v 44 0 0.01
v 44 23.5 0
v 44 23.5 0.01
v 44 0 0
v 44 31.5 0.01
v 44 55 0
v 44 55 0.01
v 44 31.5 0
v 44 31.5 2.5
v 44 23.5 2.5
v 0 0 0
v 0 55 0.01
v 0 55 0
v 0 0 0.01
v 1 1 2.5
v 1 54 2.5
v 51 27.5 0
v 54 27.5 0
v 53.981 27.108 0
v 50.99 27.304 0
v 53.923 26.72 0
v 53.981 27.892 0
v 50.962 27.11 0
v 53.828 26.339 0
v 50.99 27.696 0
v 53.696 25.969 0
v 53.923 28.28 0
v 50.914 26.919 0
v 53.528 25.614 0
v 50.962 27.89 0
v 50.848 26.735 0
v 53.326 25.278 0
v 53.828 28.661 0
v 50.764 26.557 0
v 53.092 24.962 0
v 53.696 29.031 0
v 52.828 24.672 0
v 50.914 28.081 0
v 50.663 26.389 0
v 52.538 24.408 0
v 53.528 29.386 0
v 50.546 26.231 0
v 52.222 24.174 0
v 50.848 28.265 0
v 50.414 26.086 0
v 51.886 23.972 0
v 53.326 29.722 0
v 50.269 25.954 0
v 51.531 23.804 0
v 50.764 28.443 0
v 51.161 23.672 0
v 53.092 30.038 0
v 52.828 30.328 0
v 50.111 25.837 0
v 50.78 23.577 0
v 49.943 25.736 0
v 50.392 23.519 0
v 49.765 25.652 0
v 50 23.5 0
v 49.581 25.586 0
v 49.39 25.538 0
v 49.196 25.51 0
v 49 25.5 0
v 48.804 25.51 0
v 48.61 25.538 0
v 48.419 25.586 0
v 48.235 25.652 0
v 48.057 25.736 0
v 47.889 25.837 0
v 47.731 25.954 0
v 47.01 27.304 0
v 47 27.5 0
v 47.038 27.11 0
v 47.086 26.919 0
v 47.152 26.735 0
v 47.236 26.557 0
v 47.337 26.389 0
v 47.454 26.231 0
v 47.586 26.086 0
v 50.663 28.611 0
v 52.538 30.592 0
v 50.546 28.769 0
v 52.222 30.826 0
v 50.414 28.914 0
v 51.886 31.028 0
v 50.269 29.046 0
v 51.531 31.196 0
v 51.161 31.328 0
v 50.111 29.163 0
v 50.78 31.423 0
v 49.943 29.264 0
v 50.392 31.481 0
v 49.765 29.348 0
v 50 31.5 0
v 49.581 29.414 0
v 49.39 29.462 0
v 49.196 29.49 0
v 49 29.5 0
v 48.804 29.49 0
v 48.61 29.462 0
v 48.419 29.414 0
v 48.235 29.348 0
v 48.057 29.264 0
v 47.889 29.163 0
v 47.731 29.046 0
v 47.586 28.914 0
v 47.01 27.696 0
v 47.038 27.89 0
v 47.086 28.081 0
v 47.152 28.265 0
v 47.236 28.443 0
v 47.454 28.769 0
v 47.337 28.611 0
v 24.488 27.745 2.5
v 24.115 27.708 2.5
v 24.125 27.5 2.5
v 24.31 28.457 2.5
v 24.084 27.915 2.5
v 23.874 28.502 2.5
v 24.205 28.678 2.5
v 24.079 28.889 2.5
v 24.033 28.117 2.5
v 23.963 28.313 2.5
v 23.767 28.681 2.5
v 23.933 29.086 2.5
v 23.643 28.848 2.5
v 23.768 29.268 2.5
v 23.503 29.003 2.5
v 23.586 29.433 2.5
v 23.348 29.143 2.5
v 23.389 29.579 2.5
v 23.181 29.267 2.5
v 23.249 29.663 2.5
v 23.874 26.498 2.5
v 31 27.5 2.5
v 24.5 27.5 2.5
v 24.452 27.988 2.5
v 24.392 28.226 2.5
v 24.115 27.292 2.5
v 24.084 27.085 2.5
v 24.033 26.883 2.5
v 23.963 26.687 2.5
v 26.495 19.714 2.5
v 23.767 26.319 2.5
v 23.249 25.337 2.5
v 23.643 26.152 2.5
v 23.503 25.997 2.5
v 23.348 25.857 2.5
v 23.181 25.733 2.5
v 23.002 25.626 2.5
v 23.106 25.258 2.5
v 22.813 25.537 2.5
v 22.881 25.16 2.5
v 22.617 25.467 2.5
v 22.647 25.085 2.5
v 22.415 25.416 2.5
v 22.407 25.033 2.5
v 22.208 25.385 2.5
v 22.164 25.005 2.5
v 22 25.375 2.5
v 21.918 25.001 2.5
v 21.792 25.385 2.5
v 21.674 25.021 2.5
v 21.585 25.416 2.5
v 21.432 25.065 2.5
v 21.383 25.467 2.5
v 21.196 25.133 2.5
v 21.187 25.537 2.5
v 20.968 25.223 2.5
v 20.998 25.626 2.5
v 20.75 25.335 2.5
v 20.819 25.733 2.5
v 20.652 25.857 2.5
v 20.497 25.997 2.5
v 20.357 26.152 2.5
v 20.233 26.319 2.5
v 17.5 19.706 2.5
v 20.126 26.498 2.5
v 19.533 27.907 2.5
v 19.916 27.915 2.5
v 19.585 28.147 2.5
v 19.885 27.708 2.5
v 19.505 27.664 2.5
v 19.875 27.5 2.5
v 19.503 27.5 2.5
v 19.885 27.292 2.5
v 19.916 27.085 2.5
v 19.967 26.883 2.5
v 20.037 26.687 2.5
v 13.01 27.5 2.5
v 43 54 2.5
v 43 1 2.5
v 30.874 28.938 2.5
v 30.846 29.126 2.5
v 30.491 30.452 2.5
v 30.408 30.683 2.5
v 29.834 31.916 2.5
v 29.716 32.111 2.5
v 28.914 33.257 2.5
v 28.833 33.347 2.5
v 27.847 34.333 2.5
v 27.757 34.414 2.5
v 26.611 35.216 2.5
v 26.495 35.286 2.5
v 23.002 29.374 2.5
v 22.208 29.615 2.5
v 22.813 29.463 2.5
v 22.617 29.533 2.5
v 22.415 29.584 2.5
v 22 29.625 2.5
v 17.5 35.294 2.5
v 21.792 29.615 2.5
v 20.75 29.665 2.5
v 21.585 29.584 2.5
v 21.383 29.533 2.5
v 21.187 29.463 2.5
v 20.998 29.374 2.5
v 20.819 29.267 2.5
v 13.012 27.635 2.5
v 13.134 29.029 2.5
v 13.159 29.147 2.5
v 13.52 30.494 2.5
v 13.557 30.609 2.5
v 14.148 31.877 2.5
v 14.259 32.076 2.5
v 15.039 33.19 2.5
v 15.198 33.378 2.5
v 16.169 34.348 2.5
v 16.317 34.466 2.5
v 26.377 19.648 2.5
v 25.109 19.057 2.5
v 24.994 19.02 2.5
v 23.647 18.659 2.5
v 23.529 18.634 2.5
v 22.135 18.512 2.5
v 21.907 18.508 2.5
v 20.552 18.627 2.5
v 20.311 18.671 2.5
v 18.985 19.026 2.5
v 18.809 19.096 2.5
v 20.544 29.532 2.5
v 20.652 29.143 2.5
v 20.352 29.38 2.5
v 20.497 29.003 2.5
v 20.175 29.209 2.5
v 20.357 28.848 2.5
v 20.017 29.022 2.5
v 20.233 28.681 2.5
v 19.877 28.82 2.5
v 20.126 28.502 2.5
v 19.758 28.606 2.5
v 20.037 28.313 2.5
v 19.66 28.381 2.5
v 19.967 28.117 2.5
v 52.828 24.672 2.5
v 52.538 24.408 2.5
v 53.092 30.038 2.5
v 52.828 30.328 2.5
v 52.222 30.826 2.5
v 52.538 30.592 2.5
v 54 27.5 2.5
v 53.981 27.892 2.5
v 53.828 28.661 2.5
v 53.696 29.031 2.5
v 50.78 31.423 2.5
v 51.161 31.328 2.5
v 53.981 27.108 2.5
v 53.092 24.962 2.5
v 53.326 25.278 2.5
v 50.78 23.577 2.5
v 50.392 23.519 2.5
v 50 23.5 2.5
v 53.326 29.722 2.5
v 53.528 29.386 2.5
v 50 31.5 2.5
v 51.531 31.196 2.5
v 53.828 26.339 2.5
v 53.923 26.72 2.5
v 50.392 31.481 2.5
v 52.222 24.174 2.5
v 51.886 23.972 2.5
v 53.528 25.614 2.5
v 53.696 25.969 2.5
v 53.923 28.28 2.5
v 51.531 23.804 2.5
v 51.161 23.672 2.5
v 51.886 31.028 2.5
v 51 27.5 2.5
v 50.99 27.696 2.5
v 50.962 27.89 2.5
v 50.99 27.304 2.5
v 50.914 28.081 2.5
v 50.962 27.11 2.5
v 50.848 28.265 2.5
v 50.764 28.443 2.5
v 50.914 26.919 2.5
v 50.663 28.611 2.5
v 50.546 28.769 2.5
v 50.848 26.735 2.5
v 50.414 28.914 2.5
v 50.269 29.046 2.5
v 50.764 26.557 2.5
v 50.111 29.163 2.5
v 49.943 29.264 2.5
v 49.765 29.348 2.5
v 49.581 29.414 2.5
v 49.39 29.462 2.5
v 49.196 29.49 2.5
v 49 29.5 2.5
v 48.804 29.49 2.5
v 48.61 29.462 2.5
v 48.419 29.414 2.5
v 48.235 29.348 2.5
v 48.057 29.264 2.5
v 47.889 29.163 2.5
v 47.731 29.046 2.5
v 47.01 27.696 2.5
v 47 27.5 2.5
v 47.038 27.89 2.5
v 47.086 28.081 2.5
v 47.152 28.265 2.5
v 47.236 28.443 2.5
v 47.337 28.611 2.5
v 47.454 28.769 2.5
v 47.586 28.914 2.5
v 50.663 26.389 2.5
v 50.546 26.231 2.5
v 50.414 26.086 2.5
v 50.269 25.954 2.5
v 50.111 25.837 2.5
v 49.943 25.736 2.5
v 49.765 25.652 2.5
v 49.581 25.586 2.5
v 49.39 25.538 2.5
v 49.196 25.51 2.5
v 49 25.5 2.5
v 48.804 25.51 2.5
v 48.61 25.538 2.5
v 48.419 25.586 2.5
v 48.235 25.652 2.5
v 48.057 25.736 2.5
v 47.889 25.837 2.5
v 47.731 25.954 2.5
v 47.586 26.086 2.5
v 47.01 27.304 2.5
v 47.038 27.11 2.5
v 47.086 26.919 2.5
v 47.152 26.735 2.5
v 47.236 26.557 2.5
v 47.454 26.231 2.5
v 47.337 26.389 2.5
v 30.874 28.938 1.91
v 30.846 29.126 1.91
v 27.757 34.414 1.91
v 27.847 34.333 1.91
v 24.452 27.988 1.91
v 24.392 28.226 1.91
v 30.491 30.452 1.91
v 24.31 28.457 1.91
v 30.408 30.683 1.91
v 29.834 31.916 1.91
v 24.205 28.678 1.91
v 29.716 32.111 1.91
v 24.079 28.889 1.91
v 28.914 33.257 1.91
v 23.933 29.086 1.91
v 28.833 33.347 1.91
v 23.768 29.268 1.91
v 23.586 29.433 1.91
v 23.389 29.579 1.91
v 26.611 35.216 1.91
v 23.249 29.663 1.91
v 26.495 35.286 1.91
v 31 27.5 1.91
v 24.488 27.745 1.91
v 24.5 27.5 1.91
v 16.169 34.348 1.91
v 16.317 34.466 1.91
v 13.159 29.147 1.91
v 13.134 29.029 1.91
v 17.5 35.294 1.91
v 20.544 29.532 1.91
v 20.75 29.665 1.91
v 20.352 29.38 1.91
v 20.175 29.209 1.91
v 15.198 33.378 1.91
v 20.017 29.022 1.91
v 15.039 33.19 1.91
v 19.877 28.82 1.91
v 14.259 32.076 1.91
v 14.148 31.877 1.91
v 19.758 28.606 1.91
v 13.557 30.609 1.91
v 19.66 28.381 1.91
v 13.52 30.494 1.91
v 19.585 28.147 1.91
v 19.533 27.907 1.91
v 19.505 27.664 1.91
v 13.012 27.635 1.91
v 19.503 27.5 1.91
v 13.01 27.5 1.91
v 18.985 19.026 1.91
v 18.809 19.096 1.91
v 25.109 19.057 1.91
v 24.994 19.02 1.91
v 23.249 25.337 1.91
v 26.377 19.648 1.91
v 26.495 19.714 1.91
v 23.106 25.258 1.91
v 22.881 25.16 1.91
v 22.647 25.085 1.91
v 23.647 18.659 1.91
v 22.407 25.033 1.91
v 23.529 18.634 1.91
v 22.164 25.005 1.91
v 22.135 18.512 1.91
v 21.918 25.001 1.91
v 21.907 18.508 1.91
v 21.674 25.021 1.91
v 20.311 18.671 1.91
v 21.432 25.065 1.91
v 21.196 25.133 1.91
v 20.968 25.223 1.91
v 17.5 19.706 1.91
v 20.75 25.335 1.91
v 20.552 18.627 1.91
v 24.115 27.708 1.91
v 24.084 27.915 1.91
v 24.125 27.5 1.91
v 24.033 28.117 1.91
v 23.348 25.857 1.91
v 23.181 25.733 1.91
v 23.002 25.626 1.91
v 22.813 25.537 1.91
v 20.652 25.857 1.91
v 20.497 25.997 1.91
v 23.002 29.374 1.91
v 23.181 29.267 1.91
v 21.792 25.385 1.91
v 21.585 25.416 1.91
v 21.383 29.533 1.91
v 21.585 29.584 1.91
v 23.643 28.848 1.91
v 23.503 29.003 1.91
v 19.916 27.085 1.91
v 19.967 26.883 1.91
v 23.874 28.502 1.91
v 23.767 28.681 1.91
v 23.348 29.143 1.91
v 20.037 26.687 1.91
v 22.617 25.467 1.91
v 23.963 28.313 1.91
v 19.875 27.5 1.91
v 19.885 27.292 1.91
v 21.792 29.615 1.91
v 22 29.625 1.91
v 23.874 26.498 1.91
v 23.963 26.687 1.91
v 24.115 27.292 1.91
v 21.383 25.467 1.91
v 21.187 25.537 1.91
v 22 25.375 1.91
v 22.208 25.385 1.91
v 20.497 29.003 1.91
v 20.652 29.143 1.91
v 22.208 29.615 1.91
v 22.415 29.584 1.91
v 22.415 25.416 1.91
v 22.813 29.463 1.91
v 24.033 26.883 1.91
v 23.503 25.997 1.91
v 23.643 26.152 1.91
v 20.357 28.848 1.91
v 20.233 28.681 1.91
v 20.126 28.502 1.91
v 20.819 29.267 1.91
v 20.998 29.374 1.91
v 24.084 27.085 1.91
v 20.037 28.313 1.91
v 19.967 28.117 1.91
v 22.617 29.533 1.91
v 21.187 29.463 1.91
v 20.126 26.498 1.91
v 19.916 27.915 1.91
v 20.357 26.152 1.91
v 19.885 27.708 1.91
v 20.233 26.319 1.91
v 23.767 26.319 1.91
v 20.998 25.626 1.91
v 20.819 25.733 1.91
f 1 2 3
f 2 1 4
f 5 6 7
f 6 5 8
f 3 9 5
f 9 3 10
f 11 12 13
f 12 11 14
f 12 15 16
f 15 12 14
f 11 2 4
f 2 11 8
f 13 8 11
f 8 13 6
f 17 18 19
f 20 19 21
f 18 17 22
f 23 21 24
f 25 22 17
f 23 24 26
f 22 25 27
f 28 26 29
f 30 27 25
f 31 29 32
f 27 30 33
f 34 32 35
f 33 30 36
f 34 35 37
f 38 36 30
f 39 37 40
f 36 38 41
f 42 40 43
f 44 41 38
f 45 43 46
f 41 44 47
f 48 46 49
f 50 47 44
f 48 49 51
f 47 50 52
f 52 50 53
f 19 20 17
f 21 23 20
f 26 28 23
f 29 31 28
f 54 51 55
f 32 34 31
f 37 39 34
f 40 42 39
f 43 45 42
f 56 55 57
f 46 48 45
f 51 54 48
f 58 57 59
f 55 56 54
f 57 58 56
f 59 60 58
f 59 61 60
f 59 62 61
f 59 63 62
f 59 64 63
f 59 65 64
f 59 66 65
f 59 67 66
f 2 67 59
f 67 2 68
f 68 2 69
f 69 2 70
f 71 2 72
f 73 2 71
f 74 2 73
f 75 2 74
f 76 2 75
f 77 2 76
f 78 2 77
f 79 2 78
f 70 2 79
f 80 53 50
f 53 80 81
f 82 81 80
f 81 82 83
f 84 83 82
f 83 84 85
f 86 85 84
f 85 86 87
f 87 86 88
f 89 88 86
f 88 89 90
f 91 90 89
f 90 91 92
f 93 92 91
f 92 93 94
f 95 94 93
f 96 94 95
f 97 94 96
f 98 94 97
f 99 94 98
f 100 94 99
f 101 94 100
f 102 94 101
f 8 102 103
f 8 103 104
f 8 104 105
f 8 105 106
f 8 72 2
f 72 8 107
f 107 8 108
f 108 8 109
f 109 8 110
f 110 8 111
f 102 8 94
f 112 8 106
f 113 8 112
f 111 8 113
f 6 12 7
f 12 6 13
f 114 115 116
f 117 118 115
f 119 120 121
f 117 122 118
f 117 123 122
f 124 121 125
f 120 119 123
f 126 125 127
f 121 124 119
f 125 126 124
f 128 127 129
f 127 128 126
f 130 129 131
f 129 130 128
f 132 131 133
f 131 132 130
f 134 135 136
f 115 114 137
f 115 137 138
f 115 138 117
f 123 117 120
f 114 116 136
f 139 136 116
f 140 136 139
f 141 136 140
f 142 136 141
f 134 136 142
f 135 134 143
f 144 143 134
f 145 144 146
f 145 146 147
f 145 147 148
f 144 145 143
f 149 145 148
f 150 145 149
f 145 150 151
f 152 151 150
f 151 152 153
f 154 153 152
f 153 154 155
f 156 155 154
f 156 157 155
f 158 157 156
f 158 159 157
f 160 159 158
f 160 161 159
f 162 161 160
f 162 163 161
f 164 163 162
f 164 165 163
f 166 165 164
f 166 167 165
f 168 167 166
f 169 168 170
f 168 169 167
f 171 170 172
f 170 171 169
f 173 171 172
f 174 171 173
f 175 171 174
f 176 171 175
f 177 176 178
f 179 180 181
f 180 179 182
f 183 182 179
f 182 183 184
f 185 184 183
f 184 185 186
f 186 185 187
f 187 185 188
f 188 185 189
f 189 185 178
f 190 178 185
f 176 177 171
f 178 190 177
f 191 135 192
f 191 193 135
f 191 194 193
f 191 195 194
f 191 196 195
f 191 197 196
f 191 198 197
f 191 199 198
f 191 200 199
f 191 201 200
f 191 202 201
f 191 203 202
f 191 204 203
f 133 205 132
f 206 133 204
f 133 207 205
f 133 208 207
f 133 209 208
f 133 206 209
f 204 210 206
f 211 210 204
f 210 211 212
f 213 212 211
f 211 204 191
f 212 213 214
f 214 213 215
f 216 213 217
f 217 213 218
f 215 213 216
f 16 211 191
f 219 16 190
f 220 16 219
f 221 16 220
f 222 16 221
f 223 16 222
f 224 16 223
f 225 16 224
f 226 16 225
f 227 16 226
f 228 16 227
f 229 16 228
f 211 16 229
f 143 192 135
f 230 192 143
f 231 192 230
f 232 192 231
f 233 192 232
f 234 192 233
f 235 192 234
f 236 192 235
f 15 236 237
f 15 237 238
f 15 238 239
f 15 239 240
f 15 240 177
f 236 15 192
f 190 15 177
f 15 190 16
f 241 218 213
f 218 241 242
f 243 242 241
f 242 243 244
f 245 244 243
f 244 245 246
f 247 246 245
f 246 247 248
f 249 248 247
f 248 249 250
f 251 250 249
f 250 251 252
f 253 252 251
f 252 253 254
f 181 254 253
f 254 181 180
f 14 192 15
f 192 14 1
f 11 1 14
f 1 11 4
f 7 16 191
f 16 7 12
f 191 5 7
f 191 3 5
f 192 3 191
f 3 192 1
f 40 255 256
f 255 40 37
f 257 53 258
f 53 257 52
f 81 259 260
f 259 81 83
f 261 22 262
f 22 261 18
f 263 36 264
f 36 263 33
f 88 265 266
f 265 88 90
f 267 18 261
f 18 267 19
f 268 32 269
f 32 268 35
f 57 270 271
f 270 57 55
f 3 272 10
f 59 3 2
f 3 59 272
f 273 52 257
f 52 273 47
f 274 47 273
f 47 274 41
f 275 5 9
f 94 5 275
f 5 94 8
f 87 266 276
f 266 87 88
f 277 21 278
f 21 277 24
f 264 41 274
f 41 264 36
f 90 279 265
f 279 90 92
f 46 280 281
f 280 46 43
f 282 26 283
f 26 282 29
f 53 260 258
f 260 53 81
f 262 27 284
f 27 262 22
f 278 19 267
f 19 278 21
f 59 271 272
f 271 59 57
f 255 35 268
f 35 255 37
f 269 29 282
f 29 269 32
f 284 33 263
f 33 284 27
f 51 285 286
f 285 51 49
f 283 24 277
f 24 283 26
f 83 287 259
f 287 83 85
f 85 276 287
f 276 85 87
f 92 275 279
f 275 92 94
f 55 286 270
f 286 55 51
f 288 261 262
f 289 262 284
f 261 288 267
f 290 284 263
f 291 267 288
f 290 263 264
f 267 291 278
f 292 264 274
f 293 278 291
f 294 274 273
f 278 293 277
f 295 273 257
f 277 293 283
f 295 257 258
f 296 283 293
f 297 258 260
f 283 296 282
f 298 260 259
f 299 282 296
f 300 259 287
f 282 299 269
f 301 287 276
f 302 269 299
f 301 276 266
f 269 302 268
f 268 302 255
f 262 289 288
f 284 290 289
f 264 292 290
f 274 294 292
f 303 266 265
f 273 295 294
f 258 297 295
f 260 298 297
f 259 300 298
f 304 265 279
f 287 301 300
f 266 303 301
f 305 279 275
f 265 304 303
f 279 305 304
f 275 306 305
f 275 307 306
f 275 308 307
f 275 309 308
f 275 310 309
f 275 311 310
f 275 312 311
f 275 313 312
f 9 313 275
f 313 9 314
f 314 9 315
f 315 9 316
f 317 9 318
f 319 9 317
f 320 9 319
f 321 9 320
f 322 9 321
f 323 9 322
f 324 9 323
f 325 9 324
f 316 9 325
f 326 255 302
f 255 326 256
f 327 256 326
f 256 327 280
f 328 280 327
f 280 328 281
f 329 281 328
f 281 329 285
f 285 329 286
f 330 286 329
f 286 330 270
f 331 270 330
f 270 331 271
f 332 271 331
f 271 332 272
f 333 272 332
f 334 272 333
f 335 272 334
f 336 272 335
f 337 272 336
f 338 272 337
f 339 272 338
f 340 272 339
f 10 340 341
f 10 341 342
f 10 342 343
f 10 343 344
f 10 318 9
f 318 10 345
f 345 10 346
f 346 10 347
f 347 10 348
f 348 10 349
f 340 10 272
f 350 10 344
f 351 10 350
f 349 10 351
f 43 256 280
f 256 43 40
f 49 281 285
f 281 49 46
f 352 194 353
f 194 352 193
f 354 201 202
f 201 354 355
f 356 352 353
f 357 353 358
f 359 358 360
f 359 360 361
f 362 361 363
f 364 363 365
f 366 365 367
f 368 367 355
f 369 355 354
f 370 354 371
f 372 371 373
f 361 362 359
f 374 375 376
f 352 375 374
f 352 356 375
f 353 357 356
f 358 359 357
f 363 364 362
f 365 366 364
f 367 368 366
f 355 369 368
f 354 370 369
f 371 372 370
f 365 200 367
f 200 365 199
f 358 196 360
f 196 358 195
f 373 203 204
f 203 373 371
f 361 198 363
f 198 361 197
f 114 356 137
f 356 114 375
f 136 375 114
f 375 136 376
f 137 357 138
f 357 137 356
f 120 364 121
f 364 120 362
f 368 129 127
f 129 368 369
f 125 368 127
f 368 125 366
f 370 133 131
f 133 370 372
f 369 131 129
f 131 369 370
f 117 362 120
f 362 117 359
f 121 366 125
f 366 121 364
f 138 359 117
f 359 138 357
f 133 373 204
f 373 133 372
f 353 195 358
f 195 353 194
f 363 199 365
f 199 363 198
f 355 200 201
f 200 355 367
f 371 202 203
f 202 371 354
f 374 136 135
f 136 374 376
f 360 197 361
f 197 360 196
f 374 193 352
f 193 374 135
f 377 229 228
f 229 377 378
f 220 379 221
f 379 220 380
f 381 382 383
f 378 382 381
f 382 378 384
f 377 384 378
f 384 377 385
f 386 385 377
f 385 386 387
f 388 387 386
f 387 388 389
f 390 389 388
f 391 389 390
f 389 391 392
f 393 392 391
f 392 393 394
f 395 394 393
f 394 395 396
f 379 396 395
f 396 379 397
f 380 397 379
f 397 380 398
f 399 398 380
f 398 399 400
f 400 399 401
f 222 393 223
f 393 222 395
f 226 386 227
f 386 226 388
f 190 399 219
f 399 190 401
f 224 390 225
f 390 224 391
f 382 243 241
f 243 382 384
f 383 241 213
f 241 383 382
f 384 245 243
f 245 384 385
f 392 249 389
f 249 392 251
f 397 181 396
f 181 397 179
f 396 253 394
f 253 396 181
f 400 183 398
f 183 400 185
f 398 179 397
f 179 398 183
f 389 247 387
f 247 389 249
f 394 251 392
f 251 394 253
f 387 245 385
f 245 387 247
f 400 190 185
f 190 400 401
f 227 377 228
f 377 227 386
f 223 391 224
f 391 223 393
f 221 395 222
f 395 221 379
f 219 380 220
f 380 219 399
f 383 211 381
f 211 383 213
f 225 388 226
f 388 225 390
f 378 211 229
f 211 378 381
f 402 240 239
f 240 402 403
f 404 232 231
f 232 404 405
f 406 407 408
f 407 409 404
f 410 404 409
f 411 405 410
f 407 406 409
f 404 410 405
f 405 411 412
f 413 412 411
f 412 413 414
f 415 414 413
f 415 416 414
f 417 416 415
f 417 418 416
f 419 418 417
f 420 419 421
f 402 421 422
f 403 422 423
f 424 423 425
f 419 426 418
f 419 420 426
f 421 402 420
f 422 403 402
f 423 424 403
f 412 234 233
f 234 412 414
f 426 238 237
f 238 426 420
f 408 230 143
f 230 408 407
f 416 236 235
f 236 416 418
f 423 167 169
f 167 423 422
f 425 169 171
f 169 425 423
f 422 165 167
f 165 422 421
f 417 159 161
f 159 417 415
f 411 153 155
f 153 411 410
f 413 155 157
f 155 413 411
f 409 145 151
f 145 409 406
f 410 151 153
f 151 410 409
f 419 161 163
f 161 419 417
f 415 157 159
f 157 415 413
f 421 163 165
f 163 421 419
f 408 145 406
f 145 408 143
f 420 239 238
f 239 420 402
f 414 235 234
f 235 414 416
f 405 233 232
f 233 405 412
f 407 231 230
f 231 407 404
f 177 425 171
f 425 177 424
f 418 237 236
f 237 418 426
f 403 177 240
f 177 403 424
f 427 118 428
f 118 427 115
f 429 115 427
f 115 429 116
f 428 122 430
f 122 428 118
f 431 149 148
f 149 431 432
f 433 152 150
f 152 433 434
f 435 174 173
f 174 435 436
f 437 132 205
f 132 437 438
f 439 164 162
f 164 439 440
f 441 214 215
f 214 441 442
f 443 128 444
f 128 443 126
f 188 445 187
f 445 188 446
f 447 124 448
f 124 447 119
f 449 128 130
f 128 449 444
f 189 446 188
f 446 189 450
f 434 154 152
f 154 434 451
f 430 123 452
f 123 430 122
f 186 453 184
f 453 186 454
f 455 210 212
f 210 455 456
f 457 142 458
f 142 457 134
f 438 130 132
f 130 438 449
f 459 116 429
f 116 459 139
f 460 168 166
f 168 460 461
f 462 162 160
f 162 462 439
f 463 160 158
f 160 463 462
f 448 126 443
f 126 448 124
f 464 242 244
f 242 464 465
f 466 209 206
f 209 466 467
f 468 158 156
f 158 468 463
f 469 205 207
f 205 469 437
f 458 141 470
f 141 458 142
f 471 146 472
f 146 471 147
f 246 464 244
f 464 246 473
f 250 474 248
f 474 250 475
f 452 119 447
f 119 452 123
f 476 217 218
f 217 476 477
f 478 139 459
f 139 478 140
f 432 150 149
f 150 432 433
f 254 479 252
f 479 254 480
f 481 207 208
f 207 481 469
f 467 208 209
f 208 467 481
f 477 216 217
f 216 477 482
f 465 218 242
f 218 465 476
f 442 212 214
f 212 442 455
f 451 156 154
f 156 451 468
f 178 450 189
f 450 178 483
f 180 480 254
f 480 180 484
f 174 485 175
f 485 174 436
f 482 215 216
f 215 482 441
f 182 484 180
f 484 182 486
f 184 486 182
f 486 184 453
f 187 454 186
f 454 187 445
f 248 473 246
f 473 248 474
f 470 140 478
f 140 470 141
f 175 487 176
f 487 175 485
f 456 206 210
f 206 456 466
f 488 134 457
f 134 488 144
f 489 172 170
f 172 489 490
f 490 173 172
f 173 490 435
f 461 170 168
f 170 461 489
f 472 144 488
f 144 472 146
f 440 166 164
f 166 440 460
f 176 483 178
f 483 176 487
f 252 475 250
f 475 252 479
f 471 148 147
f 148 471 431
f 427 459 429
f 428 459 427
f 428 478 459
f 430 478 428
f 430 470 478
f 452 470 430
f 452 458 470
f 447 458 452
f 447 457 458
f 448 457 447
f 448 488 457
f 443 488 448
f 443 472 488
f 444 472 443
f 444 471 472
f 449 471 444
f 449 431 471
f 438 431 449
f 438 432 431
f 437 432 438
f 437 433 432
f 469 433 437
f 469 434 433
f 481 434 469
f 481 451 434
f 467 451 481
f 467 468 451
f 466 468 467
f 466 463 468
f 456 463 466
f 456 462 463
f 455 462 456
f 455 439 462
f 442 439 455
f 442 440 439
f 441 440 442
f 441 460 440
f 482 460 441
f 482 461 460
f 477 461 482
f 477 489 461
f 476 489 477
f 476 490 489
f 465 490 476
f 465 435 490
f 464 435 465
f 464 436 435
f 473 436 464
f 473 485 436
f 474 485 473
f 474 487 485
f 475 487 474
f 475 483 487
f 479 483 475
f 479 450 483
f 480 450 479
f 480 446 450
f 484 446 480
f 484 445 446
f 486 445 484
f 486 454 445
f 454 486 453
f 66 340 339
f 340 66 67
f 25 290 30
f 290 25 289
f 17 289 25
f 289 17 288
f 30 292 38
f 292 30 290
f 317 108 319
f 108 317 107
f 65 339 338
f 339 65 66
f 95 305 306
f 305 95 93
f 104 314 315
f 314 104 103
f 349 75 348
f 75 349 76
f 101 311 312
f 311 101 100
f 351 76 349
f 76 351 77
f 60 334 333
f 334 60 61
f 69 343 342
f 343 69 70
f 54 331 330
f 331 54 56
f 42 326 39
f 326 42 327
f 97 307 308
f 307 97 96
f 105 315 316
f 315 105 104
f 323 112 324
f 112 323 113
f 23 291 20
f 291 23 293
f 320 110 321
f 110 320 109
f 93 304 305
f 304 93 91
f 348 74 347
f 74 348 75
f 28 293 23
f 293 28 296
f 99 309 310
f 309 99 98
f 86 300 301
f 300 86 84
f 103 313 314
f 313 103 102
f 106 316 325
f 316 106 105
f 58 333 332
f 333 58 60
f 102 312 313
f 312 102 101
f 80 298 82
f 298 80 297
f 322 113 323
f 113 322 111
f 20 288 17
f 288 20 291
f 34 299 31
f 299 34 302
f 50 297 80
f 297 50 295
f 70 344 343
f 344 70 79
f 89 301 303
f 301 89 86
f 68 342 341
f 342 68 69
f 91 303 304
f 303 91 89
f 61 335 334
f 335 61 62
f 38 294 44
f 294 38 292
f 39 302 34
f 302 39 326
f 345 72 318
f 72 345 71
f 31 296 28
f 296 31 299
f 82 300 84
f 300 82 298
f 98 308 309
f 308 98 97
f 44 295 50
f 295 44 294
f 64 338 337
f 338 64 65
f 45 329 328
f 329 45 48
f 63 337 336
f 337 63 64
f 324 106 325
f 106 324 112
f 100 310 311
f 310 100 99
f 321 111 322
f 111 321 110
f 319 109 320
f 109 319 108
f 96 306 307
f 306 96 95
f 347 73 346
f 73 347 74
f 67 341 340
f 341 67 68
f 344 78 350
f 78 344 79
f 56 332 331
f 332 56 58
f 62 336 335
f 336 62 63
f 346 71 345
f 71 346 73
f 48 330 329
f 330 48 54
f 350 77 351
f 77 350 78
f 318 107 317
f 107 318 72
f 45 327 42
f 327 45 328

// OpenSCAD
// ============================================================
//  Marie Curie Reaction Time Toy — Door Panel
//  File: portinha.scad
//
//  Description:
//    A single door panel (print TWO copies).
//    Each door fits into one of the front apertures of the
//    main box and is actuated by an SG90 servo motor via a
//    servo horn arm that is integrated into one edge of the door.
//
//    The door has:
//      • A slight edge bevel for a clean, professional look.
//      • A servo horn attachment arm (centred on one edge) with
//        an M3 screw hole for linking to the servo horn.
//      • A small radiation hazard symbol engraved on the face.
//
//  Print Settings:
//    - Layer height : 0.15 mm  (finer detail for engraving)
//    - Infill       : 40 % (solid perimeter, sturdy panel)
//    - Supports     : Not required (print flat)
//    - Material     : PLA / PETG  (contrast colour recommended)
//    - Perimeters   : 3
//    - Orientation  : Print flat (XY plane, Z = thickness)
//
//  Coordinate system:
//    Origin at the bottom-left corner of the door face.
//    X → width (44 mm), Y → height (55 mm), Z → thickness (2.5 mm)
// ============================================================

// ── Global rendering quality ──────────────────────────────
$fn = 64;

// ── Door body dimensions ──────────────────────────────────
door_w     = 44;    // width  [mm]
door_h     = 55;    // height [mm]
door_thick = 2.5;   // thickness [mm]
bevel      = 1.0;   // chamfer/bevel size on perimeter edges [mm]

// ── Servo horn attachment arm ─────────────────────────────
arm_w       = 8;    // arm width  [mm]
arm_len     = 10;   // arm length protruding from door edge [mm]
arm_thick   = door_thick; // same thickness as door for flat print
arm_hole_d  = 4.0;  // M3 clearance hole in the arm [mm] (3.2 mm drill + tolerance)
arm_hole_d_inner = 3.2; // tight fit inner hole diameter [mm]
// Arm centred on the RIGHT edge of the door (hinge side).
// The servo rotates the door about this point.
arm_cx = door_w;          // arm starts at right edge
arm_cy = door_h / 2;     // centred vertically

// ── Engraved radiation symbol ─────────────────────────────
rad_cx    = door_w / 2;    // symbol X centre
rad_cy    = door_h / 2;    // symbol Y centre
rad_R     = 9;             // outer blade radius [mm]
rad_r     = 2.5;           // inner circle radius [mm]
rad_depth = 0.6;           // engraving depth [mm]

// ── Tolerance ─────────────────────────────────────────────
tol = 0.2;
eps = 0.01;

// ============================================================
//  MAIN MODULE CALL
// ============================================================
door();

// ============================================================
//  MODULE: door
//  Full door assembly: bevelled panel + arm + engraving.
// ============================================================
module door() {
    difference() {
        union() {
            // ── 1. Bevelled door panel ────────────────────
            bevelled_panel(door_w, door_h, door_thick, bevel);

            // ── 2. Servo horn attachment arm ──────────────
            servo_arm();
        }

        // ── 3. Engraved radiation symbol on front face ────
        translate([rad_cx, rad_cy, door_thick - rad_depth + eps])
            radiation_symbol_2d(R=rad_R, r=rad_r, depth=rad_depth + eps);

        // ── 4. M3 screw hole through the arm ─────────────
        translate([arm_cx + arm_len / 2, arm_cy, -eps])
            cylinder(d=arm_hole_d, h=arm_thick + 2*eps);
    }
}

// ============================================================
//  MODULE: bevelled_panel
//  A flat rectangular panel with a chamfer on all top edges.
//  w, h → footprint dimensions
//  t    → thickness
//  b    → bevel/chamfer size
// ============================================================
module bevelled_panel(w, h, t, b) {
    hull() {
        // Bottom full footprint
        translate([0, 0, 0])
            cube([w, h, eps]);
        // Top footprint, inset by the bevel
        translate([b, b, t - eps])
            cube([w - 2*b, h - 2*b, eps]);
    }
}

// ============================================================
//  MODULE: servo_arm
//  A rectangular tab protruding from the right (hinge) edge
//  of the door panel.  The M3 hole is subtracted in door().
// ============================================================
module servo_arm() {
    translate([arm_cx, arm_cy - arm_w / 2, 0]) {
        // Simple rectangular arm, same thickness as door
        hull() {
            cube([eps, arm_w, arm_thick]);
            translate([arm_len - arm_w/2, arm_w/2, 0])
                cylinder(d=arm_w, h=arm_thick);
        }
    }
}

// ============================================================
//  MODULE: radiation_symbol_2d
//  3-blade trefoil engraved into the door surface.
//  Centred at origin in XY, extruded downward by `depth`.
//  R     — outer radius of blades
//  r     — inner clear-circle radius
//  depth — engraving extrusion depth
// ============================================================
module radiation_symbol_2d(R=9, r=2.5, depth=0.6) {
    // Centre dot
    cylinder(r=r * 0.85, h=depth);

    // Three blades at 0°, 120°, 240°
    for (angle = [0, 120, 240]) {
        rotate([0, 0, angle])
            blade(R=R, r=r, depth=depth);
    }
}

// ============================================================
//  MODULE: blade
//  A single 60° sector blade of the radiation symbol,
//  centred at 30° from the X axis.
// ============================================================
module blade(R, r, depth) {
    intersection() {
        // Full annular cylinder
        difference() {
            cylinder(r=R, h=depth);
            cylinder(r=r, h=depth + eps);
        }
        // 60° sector mask (blade spans from 0° to 60°)
        linear_extrude(height=depth + eps)
            polygon([
                [0, 0],
                [R * cos(0),  R * sin(0)],
                [R * cos(10), R * sin(10)],
                [R * cos(20), R * sin(20)],
                [R * cos(30), R * sin(30)],
                [R * cos(40), R * sin(40)],
                [R * cos(50), R * sin(50)],
                [R * cos(60), R * sin(60)]
            ]);
    }
}

// ============================================================
//  NOTES FOR ASSEMBLY
// ============================================================
// 1. Print TWO copies of this file (one per door opening).
// 2. The arm on the RIGHT edge hooks onto the SG90 servo horn.
//    The M3 screw (10 mm long) passes through the arm hole and
//    into the servo horn's threaded hole.
// 3. Mirror the second door in your slicer (or flip in OpenSCAD)
//    if you want the arms to be on opposite sides.
//    To mirror: use  mirror([1,0,0]) door();  in a wrapper.
// 4. For printing both door variants in one file, uncomment below:
//
//    door();                           // left door (arm on right)
//    translate([door_w+10, 0, 0])
//        mirror([1,0,0]) door();       // right door (arm on left)
